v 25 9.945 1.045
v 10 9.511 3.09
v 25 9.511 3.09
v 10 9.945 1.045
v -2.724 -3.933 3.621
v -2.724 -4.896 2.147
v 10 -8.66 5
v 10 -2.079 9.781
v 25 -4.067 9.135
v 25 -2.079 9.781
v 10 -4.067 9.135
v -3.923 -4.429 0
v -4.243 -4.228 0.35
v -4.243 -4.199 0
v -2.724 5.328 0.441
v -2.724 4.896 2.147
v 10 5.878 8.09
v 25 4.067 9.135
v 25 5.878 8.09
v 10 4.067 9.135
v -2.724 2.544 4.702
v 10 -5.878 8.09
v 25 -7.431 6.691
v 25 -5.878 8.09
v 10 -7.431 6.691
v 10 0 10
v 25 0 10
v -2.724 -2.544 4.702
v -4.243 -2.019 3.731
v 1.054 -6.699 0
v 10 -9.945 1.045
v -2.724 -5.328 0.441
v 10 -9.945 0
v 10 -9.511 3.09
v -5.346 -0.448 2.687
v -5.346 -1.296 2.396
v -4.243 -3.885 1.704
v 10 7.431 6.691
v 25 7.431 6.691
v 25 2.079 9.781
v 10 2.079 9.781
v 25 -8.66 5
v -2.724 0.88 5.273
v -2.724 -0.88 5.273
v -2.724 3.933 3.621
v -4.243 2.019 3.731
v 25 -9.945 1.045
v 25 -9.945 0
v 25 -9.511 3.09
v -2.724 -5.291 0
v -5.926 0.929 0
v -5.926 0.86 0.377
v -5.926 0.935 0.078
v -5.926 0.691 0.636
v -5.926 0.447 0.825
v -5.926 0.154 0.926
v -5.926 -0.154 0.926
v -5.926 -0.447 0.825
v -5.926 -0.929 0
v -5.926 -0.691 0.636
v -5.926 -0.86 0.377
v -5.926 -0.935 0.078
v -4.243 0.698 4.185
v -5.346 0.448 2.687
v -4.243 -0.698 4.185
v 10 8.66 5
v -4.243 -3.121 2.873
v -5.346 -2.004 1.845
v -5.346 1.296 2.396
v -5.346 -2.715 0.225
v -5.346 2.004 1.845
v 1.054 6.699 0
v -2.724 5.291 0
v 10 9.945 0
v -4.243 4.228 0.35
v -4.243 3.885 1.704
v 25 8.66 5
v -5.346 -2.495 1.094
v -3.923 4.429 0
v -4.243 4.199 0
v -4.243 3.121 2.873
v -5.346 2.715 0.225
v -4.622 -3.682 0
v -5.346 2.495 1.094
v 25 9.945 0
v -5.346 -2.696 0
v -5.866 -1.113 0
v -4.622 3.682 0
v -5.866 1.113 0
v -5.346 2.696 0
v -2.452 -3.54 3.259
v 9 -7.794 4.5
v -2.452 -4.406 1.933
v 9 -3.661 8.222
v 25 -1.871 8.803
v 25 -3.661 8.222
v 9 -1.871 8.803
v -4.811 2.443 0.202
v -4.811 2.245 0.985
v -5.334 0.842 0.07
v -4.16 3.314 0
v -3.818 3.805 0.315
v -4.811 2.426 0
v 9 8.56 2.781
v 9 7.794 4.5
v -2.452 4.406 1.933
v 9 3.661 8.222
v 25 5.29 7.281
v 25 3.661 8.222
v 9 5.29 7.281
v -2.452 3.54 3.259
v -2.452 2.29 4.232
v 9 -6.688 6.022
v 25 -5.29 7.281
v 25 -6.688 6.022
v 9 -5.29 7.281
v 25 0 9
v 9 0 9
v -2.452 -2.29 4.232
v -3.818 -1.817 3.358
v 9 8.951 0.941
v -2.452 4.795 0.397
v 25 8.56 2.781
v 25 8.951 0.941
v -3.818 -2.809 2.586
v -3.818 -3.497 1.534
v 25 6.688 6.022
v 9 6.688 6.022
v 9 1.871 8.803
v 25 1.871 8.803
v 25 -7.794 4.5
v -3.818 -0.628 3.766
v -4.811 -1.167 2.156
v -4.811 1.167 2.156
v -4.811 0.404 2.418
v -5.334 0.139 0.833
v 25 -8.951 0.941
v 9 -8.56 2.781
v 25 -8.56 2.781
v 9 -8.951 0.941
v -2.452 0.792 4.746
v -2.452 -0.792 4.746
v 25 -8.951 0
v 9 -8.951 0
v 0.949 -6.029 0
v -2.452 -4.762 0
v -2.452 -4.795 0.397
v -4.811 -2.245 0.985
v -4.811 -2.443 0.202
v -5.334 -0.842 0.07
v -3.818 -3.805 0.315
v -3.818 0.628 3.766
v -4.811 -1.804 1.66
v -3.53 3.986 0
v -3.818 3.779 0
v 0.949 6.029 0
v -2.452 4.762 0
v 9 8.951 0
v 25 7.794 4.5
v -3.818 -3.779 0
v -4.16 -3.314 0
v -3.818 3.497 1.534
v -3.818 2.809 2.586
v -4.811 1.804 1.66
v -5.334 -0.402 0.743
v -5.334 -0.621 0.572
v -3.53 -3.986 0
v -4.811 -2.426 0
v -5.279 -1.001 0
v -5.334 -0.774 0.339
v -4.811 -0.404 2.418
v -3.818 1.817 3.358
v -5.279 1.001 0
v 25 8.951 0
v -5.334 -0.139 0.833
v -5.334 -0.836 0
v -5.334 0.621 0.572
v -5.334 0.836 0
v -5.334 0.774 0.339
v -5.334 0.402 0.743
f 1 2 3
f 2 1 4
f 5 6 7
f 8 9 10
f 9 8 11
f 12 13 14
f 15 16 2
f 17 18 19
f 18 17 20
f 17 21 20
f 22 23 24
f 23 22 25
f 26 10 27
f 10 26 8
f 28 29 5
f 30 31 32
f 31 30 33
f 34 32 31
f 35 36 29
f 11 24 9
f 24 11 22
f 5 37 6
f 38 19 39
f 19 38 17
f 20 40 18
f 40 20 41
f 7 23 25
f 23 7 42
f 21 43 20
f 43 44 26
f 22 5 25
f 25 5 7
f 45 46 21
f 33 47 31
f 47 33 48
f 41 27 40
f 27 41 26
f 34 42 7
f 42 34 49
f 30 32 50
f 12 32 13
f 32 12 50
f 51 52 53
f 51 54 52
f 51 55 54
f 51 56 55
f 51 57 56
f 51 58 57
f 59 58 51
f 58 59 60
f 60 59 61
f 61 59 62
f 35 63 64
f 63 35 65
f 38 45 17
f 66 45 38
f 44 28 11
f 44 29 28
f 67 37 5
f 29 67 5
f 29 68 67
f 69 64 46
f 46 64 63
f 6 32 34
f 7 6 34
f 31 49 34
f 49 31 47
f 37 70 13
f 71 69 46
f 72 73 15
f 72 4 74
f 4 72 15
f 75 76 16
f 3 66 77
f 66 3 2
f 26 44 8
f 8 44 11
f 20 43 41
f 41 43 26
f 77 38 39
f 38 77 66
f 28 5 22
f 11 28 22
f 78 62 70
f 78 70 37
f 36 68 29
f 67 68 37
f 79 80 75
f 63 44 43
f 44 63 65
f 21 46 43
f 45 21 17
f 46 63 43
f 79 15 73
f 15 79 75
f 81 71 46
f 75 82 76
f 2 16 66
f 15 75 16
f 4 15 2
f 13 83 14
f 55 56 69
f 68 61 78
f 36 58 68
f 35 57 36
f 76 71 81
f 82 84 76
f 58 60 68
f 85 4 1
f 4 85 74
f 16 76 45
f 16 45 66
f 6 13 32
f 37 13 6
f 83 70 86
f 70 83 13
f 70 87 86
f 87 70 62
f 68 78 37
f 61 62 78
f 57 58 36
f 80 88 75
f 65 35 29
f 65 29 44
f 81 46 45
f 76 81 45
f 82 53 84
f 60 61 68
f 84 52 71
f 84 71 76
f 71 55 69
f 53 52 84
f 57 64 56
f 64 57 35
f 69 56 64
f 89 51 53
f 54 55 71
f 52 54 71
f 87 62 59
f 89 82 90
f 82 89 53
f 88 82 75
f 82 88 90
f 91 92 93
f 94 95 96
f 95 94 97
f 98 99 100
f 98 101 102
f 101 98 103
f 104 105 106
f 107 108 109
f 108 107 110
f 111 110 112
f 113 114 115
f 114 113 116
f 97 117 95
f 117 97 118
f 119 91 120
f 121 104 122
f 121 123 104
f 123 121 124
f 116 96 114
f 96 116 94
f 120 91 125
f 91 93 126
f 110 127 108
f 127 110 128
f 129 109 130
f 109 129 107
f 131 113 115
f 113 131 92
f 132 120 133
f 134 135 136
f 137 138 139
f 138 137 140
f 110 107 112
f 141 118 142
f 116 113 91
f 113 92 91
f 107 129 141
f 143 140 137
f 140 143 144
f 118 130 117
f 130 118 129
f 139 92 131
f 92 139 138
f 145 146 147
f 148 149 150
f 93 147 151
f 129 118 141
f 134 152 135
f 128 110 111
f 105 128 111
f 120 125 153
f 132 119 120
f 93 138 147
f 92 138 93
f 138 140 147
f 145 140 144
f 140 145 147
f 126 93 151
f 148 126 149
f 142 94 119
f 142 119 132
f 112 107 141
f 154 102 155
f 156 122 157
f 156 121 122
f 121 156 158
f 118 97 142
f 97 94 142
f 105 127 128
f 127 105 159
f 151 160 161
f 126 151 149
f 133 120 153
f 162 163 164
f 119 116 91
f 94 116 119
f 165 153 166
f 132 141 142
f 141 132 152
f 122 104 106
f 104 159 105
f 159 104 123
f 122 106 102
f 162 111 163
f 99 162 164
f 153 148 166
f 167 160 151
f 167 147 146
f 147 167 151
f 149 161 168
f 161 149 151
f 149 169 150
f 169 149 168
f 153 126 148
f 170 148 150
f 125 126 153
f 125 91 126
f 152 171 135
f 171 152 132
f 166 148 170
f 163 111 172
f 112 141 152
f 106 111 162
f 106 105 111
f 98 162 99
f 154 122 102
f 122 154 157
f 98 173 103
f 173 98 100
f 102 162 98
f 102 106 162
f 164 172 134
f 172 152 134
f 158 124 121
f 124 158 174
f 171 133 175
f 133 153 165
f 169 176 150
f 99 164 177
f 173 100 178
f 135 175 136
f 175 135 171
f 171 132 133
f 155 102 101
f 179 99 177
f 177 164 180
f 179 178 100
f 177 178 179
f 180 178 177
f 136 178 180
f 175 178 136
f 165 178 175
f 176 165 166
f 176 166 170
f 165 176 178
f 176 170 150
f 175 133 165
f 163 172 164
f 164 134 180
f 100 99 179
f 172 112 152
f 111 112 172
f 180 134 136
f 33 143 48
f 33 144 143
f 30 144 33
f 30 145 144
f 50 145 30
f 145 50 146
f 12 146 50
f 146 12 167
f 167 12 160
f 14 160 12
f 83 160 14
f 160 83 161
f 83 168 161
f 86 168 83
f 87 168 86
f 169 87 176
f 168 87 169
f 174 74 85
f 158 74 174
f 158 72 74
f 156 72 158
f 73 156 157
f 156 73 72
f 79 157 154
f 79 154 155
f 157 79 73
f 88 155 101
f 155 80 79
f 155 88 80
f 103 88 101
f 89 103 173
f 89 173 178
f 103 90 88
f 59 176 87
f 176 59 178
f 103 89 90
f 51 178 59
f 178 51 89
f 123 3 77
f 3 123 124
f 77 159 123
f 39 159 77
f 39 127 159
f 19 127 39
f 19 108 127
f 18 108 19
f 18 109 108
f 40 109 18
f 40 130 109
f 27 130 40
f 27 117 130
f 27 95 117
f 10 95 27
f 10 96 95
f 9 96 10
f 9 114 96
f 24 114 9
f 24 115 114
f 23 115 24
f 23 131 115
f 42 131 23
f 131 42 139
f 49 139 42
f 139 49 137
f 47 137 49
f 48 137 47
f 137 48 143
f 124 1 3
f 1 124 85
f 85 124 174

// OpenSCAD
//$fn=50;

module z() {
  d1=6;
  d2=20;
  ww=10;
  xx1=10;
  xx2=40;
  hull() {
    difference() {
      union() {
        translate([0,0,0]) rotate([0,90,0]) sphere(d1);
        translate([xx1,0,0]) rotate([0,90,0]) cylinder(1,d=d2);
        translate([xx2,0,0]) rotate([0,90,0]) cylinder(1,d=d2);
      }
    }
  }
}

difference() {
  q=.9;
  z();
  scale([q,q,q]) z();
  translate([-10,-25,-25]) cube([100,50,25]);
  #translate([25,-25,0]) cube([100,50,20]);
}
